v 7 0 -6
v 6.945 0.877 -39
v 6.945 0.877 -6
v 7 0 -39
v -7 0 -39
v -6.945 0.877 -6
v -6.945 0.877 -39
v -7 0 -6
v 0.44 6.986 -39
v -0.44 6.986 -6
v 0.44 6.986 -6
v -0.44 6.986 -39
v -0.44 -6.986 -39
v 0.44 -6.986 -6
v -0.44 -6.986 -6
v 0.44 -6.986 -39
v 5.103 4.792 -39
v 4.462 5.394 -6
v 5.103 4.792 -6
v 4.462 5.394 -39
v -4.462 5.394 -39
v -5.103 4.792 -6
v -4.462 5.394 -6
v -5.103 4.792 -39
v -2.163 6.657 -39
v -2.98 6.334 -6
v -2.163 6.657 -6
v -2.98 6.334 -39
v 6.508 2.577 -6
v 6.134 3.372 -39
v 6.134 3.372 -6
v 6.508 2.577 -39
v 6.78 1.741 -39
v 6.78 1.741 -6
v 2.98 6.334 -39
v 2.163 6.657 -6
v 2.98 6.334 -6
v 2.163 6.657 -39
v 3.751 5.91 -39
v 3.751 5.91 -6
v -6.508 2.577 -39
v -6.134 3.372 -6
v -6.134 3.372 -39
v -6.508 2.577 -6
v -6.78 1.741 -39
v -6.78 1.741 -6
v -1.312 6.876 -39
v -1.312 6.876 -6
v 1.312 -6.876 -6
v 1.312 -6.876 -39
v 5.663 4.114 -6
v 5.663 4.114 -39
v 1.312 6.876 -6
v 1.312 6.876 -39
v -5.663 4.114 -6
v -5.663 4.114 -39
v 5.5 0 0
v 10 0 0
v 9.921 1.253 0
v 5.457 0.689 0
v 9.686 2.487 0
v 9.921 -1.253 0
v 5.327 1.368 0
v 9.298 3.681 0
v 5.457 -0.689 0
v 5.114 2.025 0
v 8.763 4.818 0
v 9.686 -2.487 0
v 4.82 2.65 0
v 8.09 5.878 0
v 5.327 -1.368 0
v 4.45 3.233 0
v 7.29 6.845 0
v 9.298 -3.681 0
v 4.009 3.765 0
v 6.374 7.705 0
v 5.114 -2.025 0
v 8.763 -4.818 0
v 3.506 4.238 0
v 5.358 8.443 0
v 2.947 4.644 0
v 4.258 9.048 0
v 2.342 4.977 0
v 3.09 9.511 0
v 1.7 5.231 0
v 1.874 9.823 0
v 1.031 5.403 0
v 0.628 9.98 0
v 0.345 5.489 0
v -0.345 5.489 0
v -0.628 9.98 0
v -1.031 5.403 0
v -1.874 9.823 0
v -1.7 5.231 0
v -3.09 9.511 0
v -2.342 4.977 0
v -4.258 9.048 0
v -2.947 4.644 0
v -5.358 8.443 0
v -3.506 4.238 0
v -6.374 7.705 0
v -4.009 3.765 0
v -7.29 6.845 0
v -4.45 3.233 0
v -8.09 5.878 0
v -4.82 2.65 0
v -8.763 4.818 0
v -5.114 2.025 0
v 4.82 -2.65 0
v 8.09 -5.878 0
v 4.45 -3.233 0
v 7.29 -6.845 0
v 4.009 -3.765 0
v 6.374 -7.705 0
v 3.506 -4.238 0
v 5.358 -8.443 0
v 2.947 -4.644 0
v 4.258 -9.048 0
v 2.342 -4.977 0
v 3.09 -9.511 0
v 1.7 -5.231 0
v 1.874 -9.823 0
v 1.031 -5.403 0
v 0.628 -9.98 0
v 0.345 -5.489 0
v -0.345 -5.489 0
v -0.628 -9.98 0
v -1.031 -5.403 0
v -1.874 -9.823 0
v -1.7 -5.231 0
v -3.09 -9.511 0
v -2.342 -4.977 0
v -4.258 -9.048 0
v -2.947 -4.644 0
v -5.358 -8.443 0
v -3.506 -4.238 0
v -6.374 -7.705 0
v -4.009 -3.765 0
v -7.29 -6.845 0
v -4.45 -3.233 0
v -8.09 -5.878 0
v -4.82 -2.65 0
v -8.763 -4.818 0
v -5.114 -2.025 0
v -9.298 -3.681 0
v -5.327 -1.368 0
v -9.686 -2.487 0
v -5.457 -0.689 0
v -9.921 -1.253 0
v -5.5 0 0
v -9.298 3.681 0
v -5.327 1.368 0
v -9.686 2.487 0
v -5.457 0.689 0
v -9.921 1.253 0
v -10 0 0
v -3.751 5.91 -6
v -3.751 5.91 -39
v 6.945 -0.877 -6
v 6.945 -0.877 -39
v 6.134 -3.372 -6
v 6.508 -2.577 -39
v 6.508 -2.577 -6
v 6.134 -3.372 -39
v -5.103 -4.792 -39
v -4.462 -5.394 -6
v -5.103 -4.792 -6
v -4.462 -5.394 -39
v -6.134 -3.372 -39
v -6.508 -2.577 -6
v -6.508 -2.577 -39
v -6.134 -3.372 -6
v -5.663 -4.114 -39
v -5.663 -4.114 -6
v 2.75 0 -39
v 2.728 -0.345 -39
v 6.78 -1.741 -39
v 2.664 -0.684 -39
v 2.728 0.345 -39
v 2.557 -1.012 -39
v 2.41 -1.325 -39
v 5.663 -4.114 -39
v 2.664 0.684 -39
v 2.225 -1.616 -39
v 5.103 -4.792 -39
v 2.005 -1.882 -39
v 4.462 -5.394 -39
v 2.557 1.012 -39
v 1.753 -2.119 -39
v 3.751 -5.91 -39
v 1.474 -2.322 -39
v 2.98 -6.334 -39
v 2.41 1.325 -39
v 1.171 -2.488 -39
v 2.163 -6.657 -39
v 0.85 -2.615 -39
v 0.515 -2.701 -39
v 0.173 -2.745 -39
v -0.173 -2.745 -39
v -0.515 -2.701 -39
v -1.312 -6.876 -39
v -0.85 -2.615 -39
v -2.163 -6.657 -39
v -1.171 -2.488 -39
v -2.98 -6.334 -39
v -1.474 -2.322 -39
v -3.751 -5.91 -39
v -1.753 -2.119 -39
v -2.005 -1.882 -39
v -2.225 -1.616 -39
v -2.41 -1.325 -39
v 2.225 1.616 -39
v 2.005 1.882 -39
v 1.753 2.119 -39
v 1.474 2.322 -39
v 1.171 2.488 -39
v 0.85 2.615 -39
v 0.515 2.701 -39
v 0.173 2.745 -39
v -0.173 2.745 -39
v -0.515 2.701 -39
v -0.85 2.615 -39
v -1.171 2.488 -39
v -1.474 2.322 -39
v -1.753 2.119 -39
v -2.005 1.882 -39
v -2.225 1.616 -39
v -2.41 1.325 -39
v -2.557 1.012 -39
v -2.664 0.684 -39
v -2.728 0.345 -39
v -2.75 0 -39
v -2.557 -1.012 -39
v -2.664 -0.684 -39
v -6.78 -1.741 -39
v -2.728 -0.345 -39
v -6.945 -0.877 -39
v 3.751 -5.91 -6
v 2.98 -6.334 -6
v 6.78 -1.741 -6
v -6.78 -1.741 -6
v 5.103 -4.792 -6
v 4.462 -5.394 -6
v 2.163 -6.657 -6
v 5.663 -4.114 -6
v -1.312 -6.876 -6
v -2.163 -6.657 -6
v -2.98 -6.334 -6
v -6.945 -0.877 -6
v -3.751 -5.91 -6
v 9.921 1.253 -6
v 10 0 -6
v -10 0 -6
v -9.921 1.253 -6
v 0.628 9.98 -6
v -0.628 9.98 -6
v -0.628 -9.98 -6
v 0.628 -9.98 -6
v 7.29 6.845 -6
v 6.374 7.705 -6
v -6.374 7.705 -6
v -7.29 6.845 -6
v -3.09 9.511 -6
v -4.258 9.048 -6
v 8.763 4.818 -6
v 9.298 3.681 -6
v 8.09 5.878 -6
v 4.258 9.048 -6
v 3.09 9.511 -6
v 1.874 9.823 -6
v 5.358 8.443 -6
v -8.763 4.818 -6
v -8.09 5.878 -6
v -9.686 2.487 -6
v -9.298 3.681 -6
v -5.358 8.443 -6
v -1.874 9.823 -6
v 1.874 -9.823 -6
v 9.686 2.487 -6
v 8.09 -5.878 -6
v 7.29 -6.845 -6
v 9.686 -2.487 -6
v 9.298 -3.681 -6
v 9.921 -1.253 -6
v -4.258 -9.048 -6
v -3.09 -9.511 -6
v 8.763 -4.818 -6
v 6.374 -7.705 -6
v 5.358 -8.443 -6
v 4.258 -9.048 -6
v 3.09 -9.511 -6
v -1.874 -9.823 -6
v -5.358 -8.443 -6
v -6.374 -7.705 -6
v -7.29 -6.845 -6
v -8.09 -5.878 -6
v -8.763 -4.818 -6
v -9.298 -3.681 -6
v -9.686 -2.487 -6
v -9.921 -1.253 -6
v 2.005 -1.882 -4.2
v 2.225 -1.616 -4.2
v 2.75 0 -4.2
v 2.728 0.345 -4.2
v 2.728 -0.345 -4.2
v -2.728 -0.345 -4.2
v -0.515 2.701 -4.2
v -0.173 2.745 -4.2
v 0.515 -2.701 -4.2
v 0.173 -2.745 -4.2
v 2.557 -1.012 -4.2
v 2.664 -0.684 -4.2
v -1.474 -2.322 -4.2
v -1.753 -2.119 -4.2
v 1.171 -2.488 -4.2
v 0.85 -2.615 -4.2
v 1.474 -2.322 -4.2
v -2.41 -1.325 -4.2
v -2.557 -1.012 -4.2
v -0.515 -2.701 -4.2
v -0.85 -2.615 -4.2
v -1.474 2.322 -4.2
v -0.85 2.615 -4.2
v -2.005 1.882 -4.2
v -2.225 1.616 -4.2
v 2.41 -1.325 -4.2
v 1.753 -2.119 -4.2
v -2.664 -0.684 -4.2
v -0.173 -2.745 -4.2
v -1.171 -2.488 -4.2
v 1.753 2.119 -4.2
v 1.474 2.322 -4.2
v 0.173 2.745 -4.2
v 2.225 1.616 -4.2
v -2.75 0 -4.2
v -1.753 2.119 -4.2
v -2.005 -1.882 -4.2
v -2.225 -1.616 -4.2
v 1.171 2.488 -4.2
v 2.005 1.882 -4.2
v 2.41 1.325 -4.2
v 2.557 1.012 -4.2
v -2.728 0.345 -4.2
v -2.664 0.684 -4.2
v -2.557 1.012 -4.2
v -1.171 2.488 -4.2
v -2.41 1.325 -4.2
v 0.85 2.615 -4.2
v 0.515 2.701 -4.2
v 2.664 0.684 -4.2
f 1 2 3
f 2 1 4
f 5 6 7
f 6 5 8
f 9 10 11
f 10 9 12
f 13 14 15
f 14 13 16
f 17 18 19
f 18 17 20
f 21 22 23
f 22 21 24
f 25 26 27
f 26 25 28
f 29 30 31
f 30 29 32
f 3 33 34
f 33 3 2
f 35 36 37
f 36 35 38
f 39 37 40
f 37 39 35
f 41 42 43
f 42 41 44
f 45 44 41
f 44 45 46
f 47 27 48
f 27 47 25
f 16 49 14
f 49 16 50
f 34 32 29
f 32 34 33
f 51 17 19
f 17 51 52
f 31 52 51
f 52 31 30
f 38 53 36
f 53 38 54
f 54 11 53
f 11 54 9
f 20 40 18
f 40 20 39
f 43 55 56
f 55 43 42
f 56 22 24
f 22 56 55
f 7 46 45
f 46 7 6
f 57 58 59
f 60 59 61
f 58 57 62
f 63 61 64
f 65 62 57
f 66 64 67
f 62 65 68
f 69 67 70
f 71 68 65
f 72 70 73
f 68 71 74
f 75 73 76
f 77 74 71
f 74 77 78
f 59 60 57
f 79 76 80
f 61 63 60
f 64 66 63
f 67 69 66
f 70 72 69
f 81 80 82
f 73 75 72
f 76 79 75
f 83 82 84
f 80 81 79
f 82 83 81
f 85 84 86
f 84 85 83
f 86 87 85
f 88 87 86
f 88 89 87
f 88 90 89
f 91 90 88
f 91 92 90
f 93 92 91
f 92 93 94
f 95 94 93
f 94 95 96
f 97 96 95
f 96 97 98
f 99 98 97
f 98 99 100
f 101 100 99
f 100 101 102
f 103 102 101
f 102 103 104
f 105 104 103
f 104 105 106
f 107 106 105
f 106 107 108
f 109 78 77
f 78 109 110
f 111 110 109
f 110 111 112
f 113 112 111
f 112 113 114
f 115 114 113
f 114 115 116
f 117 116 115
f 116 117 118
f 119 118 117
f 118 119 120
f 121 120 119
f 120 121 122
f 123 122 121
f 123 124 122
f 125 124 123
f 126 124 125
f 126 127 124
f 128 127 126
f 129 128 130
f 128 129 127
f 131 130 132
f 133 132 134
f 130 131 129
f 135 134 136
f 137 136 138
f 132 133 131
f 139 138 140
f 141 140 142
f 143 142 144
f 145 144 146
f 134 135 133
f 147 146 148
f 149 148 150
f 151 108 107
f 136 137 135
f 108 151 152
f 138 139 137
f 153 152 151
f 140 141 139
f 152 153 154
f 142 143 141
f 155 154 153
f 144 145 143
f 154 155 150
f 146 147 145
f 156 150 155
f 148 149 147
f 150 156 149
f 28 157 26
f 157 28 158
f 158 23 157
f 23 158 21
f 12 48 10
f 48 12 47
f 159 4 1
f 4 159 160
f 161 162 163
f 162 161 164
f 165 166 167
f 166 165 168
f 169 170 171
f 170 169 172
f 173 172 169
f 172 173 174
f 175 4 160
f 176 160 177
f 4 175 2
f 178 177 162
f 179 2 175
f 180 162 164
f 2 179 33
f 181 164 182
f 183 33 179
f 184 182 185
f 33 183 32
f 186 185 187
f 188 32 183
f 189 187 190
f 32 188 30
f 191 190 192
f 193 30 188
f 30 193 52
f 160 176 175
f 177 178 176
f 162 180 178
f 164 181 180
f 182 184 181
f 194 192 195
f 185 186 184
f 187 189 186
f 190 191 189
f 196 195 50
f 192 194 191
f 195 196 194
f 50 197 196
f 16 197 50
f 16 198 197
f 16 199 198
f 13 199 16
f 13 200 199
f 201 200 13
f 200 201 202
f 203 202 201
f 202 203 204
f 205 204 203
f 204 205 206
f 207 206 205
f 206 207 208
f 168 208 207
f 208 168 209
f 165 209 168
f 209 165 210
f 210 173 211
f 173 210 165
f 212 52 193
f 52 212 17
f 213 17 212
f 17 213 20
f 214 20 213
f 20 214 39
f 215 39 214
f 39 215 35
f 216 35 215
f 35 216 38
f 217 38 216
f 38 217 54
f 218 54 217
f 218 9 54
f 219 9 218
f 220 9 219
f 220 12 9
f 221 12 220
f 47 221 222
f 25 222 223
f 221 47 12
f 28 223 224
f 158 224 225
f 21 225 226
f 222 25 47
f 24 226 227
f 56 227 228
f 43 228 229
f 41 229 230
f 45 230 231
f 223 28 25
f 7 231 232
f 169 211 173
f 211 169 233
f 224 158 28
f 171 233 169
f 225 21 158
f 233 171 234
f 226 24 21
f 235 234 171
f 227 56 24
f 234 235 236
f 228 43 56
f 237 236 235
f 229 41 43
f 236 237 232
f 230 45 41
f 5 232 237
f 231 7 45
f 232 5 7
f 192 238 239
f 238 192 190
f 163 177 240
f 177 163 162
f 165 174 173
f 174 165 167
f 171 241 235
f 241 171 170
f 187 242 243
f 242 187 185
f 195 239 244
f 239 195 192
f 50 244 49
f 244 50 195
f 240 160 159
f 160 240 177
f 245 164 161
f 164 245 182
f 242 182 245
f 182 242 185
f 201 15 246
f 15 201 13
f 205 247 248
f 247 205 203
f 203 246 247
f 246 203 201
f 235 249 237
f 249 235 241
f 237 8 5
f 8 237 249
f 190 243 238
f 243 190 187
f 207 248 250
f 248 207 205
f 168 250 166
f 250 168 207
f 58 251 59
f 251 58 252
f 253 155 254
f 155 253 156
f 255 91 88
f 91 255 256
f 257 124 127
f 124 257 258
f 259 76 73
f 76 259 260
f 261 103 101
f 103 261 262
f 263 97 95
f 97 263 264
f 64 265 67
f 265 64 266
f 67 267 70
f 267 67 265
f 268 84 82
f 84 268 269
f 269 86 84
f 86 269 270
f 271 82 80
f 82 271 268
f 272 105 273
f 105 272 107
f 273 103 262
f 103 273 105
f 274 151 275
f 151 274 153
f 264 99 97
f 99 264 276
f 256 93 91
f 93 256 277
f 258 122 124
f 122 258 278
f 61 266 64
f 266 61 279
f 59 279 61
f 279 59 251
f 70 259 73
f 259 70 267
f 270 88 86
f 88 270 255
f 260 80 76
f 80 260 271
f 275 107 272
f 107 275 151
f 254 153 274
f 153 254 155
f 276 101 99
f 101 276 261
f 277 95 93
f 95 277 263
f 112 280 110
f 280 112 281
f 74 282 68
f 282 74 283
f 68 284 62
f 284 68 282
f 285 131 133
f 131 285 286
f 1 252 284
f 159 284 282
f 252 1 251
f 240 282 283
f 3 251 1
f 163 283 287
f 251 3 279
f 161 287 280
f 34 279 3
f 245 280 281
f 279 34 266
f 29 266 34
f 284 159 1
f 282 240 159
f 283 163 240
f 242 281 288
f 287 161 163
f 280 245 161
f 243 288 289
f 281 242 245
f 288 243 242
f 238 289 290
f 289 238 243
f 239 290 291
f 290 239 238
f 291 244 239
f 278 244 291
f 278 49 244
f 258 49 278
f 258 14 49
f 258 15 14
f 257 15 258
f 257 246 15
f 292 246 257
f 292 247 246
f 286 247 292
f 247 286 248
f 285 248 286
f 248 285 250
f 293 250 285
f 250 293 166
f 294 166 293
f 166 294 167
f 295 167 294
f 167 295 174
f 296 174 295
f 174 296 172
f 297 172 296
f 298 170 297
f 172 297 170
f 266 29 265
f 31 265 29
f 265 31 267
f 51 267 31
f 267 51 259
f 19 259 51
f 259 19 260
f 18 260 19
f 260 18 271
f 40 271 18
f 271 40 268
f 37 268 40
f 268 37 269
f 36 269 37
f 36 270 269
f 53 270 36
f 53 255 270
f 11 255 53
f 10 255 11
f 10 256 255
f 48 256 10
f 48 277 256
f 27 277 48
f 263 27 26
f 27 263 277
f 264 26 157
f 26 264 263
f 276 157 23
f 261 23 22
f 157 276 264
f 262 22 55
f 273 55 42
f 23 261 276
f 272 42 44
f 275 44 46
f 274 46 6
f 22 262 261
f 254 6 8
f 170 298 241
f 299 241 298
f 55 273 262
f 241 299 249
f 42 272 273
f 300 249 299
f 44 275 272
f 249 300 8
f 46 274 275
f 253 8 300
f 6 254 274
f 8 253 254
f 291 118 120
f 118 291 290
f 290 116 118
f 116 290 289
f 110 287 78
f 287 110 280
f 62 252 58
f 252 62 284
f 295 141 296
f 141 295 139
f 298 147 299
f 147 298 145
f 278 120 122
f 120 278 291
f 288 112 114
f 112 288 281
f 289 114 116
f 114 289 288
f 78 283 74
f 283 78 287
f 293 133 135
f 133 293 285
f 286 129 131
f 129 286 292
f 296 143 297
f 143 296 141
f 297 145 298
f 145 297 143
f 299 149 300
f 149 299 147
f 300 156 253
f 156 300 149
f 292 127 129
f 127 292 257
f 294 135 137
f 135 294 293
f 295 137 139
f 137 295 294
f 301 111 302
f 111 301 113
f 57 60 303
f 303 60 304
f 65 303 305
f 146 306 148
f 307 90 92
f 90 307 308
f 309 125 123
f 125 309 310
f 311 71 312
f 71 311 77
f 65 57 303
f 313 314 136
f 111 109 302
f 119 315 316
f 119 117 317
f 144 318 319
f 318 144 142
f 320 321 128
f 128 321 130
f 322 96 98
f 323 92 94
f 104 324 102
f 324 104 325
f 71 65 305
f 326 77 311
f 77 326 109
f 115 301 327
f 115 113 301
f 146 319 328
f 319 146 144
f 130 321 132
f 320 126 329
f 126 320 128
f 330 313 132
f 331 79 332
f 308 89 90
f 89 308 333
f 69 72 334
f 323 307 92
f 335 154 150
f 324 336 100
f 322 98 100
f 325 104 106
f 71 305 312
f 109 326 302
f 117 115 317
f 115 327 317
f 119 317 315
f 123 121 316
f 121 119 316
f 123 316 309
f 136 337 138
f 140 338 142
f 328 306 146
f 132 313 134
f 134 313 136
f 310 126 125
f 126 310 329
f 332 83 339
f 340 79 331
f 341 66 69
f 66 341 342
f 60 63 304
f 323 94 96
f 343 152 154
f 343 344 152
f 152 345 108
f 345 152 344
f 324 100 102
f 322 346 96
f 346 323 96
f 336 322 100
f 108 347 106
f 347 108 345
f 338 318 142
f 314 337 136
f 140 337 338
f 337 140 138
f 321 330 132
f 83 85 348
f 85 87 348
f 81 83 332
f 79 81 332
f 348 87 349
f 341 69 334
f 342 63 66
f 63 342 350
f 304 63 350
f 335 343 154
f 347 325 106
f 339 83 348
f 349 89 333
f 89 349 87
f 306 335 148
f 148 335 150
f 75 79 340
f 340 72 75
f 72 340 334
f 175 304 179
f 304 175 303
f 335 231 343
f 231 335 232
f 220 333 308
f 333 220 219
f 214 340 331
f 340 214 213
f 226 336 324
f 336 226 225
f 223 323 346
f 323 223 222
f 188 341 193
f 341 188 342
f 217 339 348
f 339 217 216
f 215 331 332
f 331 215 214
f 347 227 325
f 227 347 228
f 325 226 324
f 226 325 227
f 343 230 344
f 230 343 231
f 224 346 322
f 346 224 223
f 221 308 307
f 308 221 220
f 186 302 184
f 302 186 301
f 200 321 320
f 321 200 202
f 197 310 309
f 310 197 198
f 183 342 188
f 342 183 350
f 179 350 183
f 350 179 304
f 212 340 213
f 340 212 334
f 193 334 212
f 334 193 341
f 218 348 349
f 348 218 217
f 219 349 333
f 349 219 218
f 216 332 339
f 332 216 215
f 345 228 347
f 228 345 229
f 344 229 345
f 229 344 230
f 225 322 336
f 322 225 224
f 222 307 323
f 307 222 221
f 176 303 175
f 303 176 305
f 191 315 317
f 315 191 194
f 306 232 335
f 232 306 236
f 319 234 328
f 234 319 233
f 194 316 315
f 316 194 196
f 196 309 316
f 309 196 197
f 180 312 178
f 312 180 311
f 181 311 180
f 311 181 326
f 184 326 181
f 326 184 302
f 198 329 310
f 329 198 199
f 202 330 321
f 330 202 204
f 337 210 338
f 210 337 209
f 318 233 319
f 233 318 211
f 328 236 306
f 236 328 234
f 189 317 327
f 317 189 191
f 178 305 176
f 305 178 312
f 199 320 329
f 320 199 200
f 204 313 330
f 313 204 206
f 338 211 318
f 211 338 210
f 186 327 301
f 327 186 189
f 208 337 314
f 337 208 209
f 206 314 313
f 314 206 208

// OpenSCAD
$fn = 50;


difference() {
	union() {
		translate(v = [0, 0, -39.0000000000]) {
			cylinder(h = 39, r = 7.0000000000);
		}
		translate(v = [0, 0, -6.0000000000]) {
			cylinder(h = 6, r = 10.0000000000);
		}
	}
	union() {
		translate(v = [0, 0, 0]) {
			rotate(a = [0, 0, 0]) {
				difference() {
					union() {
						#translate(v = [0, 0, -39.0000000000]) {
							cylinder(h = 39, r = 2.2500000000);
						}
						#translate(v = [0, 0, -4.2000000000]) {
							cylinder(h = 4.2000000000, r = 7.0000000000, r1 = 2.7500000000, r2 = 5.5000000000);
						}
						#translate(v = [0, 0, -39.0000000000]) {
							cylinder(h = 39, r = 2.7500000000);
						}
						#translate(v = [0, 0, -39.0000000000]) {
							cylinder(h = 39, r = 2.2500000000);
						}
					}
					union();
				}
			}
		}
	}
}
